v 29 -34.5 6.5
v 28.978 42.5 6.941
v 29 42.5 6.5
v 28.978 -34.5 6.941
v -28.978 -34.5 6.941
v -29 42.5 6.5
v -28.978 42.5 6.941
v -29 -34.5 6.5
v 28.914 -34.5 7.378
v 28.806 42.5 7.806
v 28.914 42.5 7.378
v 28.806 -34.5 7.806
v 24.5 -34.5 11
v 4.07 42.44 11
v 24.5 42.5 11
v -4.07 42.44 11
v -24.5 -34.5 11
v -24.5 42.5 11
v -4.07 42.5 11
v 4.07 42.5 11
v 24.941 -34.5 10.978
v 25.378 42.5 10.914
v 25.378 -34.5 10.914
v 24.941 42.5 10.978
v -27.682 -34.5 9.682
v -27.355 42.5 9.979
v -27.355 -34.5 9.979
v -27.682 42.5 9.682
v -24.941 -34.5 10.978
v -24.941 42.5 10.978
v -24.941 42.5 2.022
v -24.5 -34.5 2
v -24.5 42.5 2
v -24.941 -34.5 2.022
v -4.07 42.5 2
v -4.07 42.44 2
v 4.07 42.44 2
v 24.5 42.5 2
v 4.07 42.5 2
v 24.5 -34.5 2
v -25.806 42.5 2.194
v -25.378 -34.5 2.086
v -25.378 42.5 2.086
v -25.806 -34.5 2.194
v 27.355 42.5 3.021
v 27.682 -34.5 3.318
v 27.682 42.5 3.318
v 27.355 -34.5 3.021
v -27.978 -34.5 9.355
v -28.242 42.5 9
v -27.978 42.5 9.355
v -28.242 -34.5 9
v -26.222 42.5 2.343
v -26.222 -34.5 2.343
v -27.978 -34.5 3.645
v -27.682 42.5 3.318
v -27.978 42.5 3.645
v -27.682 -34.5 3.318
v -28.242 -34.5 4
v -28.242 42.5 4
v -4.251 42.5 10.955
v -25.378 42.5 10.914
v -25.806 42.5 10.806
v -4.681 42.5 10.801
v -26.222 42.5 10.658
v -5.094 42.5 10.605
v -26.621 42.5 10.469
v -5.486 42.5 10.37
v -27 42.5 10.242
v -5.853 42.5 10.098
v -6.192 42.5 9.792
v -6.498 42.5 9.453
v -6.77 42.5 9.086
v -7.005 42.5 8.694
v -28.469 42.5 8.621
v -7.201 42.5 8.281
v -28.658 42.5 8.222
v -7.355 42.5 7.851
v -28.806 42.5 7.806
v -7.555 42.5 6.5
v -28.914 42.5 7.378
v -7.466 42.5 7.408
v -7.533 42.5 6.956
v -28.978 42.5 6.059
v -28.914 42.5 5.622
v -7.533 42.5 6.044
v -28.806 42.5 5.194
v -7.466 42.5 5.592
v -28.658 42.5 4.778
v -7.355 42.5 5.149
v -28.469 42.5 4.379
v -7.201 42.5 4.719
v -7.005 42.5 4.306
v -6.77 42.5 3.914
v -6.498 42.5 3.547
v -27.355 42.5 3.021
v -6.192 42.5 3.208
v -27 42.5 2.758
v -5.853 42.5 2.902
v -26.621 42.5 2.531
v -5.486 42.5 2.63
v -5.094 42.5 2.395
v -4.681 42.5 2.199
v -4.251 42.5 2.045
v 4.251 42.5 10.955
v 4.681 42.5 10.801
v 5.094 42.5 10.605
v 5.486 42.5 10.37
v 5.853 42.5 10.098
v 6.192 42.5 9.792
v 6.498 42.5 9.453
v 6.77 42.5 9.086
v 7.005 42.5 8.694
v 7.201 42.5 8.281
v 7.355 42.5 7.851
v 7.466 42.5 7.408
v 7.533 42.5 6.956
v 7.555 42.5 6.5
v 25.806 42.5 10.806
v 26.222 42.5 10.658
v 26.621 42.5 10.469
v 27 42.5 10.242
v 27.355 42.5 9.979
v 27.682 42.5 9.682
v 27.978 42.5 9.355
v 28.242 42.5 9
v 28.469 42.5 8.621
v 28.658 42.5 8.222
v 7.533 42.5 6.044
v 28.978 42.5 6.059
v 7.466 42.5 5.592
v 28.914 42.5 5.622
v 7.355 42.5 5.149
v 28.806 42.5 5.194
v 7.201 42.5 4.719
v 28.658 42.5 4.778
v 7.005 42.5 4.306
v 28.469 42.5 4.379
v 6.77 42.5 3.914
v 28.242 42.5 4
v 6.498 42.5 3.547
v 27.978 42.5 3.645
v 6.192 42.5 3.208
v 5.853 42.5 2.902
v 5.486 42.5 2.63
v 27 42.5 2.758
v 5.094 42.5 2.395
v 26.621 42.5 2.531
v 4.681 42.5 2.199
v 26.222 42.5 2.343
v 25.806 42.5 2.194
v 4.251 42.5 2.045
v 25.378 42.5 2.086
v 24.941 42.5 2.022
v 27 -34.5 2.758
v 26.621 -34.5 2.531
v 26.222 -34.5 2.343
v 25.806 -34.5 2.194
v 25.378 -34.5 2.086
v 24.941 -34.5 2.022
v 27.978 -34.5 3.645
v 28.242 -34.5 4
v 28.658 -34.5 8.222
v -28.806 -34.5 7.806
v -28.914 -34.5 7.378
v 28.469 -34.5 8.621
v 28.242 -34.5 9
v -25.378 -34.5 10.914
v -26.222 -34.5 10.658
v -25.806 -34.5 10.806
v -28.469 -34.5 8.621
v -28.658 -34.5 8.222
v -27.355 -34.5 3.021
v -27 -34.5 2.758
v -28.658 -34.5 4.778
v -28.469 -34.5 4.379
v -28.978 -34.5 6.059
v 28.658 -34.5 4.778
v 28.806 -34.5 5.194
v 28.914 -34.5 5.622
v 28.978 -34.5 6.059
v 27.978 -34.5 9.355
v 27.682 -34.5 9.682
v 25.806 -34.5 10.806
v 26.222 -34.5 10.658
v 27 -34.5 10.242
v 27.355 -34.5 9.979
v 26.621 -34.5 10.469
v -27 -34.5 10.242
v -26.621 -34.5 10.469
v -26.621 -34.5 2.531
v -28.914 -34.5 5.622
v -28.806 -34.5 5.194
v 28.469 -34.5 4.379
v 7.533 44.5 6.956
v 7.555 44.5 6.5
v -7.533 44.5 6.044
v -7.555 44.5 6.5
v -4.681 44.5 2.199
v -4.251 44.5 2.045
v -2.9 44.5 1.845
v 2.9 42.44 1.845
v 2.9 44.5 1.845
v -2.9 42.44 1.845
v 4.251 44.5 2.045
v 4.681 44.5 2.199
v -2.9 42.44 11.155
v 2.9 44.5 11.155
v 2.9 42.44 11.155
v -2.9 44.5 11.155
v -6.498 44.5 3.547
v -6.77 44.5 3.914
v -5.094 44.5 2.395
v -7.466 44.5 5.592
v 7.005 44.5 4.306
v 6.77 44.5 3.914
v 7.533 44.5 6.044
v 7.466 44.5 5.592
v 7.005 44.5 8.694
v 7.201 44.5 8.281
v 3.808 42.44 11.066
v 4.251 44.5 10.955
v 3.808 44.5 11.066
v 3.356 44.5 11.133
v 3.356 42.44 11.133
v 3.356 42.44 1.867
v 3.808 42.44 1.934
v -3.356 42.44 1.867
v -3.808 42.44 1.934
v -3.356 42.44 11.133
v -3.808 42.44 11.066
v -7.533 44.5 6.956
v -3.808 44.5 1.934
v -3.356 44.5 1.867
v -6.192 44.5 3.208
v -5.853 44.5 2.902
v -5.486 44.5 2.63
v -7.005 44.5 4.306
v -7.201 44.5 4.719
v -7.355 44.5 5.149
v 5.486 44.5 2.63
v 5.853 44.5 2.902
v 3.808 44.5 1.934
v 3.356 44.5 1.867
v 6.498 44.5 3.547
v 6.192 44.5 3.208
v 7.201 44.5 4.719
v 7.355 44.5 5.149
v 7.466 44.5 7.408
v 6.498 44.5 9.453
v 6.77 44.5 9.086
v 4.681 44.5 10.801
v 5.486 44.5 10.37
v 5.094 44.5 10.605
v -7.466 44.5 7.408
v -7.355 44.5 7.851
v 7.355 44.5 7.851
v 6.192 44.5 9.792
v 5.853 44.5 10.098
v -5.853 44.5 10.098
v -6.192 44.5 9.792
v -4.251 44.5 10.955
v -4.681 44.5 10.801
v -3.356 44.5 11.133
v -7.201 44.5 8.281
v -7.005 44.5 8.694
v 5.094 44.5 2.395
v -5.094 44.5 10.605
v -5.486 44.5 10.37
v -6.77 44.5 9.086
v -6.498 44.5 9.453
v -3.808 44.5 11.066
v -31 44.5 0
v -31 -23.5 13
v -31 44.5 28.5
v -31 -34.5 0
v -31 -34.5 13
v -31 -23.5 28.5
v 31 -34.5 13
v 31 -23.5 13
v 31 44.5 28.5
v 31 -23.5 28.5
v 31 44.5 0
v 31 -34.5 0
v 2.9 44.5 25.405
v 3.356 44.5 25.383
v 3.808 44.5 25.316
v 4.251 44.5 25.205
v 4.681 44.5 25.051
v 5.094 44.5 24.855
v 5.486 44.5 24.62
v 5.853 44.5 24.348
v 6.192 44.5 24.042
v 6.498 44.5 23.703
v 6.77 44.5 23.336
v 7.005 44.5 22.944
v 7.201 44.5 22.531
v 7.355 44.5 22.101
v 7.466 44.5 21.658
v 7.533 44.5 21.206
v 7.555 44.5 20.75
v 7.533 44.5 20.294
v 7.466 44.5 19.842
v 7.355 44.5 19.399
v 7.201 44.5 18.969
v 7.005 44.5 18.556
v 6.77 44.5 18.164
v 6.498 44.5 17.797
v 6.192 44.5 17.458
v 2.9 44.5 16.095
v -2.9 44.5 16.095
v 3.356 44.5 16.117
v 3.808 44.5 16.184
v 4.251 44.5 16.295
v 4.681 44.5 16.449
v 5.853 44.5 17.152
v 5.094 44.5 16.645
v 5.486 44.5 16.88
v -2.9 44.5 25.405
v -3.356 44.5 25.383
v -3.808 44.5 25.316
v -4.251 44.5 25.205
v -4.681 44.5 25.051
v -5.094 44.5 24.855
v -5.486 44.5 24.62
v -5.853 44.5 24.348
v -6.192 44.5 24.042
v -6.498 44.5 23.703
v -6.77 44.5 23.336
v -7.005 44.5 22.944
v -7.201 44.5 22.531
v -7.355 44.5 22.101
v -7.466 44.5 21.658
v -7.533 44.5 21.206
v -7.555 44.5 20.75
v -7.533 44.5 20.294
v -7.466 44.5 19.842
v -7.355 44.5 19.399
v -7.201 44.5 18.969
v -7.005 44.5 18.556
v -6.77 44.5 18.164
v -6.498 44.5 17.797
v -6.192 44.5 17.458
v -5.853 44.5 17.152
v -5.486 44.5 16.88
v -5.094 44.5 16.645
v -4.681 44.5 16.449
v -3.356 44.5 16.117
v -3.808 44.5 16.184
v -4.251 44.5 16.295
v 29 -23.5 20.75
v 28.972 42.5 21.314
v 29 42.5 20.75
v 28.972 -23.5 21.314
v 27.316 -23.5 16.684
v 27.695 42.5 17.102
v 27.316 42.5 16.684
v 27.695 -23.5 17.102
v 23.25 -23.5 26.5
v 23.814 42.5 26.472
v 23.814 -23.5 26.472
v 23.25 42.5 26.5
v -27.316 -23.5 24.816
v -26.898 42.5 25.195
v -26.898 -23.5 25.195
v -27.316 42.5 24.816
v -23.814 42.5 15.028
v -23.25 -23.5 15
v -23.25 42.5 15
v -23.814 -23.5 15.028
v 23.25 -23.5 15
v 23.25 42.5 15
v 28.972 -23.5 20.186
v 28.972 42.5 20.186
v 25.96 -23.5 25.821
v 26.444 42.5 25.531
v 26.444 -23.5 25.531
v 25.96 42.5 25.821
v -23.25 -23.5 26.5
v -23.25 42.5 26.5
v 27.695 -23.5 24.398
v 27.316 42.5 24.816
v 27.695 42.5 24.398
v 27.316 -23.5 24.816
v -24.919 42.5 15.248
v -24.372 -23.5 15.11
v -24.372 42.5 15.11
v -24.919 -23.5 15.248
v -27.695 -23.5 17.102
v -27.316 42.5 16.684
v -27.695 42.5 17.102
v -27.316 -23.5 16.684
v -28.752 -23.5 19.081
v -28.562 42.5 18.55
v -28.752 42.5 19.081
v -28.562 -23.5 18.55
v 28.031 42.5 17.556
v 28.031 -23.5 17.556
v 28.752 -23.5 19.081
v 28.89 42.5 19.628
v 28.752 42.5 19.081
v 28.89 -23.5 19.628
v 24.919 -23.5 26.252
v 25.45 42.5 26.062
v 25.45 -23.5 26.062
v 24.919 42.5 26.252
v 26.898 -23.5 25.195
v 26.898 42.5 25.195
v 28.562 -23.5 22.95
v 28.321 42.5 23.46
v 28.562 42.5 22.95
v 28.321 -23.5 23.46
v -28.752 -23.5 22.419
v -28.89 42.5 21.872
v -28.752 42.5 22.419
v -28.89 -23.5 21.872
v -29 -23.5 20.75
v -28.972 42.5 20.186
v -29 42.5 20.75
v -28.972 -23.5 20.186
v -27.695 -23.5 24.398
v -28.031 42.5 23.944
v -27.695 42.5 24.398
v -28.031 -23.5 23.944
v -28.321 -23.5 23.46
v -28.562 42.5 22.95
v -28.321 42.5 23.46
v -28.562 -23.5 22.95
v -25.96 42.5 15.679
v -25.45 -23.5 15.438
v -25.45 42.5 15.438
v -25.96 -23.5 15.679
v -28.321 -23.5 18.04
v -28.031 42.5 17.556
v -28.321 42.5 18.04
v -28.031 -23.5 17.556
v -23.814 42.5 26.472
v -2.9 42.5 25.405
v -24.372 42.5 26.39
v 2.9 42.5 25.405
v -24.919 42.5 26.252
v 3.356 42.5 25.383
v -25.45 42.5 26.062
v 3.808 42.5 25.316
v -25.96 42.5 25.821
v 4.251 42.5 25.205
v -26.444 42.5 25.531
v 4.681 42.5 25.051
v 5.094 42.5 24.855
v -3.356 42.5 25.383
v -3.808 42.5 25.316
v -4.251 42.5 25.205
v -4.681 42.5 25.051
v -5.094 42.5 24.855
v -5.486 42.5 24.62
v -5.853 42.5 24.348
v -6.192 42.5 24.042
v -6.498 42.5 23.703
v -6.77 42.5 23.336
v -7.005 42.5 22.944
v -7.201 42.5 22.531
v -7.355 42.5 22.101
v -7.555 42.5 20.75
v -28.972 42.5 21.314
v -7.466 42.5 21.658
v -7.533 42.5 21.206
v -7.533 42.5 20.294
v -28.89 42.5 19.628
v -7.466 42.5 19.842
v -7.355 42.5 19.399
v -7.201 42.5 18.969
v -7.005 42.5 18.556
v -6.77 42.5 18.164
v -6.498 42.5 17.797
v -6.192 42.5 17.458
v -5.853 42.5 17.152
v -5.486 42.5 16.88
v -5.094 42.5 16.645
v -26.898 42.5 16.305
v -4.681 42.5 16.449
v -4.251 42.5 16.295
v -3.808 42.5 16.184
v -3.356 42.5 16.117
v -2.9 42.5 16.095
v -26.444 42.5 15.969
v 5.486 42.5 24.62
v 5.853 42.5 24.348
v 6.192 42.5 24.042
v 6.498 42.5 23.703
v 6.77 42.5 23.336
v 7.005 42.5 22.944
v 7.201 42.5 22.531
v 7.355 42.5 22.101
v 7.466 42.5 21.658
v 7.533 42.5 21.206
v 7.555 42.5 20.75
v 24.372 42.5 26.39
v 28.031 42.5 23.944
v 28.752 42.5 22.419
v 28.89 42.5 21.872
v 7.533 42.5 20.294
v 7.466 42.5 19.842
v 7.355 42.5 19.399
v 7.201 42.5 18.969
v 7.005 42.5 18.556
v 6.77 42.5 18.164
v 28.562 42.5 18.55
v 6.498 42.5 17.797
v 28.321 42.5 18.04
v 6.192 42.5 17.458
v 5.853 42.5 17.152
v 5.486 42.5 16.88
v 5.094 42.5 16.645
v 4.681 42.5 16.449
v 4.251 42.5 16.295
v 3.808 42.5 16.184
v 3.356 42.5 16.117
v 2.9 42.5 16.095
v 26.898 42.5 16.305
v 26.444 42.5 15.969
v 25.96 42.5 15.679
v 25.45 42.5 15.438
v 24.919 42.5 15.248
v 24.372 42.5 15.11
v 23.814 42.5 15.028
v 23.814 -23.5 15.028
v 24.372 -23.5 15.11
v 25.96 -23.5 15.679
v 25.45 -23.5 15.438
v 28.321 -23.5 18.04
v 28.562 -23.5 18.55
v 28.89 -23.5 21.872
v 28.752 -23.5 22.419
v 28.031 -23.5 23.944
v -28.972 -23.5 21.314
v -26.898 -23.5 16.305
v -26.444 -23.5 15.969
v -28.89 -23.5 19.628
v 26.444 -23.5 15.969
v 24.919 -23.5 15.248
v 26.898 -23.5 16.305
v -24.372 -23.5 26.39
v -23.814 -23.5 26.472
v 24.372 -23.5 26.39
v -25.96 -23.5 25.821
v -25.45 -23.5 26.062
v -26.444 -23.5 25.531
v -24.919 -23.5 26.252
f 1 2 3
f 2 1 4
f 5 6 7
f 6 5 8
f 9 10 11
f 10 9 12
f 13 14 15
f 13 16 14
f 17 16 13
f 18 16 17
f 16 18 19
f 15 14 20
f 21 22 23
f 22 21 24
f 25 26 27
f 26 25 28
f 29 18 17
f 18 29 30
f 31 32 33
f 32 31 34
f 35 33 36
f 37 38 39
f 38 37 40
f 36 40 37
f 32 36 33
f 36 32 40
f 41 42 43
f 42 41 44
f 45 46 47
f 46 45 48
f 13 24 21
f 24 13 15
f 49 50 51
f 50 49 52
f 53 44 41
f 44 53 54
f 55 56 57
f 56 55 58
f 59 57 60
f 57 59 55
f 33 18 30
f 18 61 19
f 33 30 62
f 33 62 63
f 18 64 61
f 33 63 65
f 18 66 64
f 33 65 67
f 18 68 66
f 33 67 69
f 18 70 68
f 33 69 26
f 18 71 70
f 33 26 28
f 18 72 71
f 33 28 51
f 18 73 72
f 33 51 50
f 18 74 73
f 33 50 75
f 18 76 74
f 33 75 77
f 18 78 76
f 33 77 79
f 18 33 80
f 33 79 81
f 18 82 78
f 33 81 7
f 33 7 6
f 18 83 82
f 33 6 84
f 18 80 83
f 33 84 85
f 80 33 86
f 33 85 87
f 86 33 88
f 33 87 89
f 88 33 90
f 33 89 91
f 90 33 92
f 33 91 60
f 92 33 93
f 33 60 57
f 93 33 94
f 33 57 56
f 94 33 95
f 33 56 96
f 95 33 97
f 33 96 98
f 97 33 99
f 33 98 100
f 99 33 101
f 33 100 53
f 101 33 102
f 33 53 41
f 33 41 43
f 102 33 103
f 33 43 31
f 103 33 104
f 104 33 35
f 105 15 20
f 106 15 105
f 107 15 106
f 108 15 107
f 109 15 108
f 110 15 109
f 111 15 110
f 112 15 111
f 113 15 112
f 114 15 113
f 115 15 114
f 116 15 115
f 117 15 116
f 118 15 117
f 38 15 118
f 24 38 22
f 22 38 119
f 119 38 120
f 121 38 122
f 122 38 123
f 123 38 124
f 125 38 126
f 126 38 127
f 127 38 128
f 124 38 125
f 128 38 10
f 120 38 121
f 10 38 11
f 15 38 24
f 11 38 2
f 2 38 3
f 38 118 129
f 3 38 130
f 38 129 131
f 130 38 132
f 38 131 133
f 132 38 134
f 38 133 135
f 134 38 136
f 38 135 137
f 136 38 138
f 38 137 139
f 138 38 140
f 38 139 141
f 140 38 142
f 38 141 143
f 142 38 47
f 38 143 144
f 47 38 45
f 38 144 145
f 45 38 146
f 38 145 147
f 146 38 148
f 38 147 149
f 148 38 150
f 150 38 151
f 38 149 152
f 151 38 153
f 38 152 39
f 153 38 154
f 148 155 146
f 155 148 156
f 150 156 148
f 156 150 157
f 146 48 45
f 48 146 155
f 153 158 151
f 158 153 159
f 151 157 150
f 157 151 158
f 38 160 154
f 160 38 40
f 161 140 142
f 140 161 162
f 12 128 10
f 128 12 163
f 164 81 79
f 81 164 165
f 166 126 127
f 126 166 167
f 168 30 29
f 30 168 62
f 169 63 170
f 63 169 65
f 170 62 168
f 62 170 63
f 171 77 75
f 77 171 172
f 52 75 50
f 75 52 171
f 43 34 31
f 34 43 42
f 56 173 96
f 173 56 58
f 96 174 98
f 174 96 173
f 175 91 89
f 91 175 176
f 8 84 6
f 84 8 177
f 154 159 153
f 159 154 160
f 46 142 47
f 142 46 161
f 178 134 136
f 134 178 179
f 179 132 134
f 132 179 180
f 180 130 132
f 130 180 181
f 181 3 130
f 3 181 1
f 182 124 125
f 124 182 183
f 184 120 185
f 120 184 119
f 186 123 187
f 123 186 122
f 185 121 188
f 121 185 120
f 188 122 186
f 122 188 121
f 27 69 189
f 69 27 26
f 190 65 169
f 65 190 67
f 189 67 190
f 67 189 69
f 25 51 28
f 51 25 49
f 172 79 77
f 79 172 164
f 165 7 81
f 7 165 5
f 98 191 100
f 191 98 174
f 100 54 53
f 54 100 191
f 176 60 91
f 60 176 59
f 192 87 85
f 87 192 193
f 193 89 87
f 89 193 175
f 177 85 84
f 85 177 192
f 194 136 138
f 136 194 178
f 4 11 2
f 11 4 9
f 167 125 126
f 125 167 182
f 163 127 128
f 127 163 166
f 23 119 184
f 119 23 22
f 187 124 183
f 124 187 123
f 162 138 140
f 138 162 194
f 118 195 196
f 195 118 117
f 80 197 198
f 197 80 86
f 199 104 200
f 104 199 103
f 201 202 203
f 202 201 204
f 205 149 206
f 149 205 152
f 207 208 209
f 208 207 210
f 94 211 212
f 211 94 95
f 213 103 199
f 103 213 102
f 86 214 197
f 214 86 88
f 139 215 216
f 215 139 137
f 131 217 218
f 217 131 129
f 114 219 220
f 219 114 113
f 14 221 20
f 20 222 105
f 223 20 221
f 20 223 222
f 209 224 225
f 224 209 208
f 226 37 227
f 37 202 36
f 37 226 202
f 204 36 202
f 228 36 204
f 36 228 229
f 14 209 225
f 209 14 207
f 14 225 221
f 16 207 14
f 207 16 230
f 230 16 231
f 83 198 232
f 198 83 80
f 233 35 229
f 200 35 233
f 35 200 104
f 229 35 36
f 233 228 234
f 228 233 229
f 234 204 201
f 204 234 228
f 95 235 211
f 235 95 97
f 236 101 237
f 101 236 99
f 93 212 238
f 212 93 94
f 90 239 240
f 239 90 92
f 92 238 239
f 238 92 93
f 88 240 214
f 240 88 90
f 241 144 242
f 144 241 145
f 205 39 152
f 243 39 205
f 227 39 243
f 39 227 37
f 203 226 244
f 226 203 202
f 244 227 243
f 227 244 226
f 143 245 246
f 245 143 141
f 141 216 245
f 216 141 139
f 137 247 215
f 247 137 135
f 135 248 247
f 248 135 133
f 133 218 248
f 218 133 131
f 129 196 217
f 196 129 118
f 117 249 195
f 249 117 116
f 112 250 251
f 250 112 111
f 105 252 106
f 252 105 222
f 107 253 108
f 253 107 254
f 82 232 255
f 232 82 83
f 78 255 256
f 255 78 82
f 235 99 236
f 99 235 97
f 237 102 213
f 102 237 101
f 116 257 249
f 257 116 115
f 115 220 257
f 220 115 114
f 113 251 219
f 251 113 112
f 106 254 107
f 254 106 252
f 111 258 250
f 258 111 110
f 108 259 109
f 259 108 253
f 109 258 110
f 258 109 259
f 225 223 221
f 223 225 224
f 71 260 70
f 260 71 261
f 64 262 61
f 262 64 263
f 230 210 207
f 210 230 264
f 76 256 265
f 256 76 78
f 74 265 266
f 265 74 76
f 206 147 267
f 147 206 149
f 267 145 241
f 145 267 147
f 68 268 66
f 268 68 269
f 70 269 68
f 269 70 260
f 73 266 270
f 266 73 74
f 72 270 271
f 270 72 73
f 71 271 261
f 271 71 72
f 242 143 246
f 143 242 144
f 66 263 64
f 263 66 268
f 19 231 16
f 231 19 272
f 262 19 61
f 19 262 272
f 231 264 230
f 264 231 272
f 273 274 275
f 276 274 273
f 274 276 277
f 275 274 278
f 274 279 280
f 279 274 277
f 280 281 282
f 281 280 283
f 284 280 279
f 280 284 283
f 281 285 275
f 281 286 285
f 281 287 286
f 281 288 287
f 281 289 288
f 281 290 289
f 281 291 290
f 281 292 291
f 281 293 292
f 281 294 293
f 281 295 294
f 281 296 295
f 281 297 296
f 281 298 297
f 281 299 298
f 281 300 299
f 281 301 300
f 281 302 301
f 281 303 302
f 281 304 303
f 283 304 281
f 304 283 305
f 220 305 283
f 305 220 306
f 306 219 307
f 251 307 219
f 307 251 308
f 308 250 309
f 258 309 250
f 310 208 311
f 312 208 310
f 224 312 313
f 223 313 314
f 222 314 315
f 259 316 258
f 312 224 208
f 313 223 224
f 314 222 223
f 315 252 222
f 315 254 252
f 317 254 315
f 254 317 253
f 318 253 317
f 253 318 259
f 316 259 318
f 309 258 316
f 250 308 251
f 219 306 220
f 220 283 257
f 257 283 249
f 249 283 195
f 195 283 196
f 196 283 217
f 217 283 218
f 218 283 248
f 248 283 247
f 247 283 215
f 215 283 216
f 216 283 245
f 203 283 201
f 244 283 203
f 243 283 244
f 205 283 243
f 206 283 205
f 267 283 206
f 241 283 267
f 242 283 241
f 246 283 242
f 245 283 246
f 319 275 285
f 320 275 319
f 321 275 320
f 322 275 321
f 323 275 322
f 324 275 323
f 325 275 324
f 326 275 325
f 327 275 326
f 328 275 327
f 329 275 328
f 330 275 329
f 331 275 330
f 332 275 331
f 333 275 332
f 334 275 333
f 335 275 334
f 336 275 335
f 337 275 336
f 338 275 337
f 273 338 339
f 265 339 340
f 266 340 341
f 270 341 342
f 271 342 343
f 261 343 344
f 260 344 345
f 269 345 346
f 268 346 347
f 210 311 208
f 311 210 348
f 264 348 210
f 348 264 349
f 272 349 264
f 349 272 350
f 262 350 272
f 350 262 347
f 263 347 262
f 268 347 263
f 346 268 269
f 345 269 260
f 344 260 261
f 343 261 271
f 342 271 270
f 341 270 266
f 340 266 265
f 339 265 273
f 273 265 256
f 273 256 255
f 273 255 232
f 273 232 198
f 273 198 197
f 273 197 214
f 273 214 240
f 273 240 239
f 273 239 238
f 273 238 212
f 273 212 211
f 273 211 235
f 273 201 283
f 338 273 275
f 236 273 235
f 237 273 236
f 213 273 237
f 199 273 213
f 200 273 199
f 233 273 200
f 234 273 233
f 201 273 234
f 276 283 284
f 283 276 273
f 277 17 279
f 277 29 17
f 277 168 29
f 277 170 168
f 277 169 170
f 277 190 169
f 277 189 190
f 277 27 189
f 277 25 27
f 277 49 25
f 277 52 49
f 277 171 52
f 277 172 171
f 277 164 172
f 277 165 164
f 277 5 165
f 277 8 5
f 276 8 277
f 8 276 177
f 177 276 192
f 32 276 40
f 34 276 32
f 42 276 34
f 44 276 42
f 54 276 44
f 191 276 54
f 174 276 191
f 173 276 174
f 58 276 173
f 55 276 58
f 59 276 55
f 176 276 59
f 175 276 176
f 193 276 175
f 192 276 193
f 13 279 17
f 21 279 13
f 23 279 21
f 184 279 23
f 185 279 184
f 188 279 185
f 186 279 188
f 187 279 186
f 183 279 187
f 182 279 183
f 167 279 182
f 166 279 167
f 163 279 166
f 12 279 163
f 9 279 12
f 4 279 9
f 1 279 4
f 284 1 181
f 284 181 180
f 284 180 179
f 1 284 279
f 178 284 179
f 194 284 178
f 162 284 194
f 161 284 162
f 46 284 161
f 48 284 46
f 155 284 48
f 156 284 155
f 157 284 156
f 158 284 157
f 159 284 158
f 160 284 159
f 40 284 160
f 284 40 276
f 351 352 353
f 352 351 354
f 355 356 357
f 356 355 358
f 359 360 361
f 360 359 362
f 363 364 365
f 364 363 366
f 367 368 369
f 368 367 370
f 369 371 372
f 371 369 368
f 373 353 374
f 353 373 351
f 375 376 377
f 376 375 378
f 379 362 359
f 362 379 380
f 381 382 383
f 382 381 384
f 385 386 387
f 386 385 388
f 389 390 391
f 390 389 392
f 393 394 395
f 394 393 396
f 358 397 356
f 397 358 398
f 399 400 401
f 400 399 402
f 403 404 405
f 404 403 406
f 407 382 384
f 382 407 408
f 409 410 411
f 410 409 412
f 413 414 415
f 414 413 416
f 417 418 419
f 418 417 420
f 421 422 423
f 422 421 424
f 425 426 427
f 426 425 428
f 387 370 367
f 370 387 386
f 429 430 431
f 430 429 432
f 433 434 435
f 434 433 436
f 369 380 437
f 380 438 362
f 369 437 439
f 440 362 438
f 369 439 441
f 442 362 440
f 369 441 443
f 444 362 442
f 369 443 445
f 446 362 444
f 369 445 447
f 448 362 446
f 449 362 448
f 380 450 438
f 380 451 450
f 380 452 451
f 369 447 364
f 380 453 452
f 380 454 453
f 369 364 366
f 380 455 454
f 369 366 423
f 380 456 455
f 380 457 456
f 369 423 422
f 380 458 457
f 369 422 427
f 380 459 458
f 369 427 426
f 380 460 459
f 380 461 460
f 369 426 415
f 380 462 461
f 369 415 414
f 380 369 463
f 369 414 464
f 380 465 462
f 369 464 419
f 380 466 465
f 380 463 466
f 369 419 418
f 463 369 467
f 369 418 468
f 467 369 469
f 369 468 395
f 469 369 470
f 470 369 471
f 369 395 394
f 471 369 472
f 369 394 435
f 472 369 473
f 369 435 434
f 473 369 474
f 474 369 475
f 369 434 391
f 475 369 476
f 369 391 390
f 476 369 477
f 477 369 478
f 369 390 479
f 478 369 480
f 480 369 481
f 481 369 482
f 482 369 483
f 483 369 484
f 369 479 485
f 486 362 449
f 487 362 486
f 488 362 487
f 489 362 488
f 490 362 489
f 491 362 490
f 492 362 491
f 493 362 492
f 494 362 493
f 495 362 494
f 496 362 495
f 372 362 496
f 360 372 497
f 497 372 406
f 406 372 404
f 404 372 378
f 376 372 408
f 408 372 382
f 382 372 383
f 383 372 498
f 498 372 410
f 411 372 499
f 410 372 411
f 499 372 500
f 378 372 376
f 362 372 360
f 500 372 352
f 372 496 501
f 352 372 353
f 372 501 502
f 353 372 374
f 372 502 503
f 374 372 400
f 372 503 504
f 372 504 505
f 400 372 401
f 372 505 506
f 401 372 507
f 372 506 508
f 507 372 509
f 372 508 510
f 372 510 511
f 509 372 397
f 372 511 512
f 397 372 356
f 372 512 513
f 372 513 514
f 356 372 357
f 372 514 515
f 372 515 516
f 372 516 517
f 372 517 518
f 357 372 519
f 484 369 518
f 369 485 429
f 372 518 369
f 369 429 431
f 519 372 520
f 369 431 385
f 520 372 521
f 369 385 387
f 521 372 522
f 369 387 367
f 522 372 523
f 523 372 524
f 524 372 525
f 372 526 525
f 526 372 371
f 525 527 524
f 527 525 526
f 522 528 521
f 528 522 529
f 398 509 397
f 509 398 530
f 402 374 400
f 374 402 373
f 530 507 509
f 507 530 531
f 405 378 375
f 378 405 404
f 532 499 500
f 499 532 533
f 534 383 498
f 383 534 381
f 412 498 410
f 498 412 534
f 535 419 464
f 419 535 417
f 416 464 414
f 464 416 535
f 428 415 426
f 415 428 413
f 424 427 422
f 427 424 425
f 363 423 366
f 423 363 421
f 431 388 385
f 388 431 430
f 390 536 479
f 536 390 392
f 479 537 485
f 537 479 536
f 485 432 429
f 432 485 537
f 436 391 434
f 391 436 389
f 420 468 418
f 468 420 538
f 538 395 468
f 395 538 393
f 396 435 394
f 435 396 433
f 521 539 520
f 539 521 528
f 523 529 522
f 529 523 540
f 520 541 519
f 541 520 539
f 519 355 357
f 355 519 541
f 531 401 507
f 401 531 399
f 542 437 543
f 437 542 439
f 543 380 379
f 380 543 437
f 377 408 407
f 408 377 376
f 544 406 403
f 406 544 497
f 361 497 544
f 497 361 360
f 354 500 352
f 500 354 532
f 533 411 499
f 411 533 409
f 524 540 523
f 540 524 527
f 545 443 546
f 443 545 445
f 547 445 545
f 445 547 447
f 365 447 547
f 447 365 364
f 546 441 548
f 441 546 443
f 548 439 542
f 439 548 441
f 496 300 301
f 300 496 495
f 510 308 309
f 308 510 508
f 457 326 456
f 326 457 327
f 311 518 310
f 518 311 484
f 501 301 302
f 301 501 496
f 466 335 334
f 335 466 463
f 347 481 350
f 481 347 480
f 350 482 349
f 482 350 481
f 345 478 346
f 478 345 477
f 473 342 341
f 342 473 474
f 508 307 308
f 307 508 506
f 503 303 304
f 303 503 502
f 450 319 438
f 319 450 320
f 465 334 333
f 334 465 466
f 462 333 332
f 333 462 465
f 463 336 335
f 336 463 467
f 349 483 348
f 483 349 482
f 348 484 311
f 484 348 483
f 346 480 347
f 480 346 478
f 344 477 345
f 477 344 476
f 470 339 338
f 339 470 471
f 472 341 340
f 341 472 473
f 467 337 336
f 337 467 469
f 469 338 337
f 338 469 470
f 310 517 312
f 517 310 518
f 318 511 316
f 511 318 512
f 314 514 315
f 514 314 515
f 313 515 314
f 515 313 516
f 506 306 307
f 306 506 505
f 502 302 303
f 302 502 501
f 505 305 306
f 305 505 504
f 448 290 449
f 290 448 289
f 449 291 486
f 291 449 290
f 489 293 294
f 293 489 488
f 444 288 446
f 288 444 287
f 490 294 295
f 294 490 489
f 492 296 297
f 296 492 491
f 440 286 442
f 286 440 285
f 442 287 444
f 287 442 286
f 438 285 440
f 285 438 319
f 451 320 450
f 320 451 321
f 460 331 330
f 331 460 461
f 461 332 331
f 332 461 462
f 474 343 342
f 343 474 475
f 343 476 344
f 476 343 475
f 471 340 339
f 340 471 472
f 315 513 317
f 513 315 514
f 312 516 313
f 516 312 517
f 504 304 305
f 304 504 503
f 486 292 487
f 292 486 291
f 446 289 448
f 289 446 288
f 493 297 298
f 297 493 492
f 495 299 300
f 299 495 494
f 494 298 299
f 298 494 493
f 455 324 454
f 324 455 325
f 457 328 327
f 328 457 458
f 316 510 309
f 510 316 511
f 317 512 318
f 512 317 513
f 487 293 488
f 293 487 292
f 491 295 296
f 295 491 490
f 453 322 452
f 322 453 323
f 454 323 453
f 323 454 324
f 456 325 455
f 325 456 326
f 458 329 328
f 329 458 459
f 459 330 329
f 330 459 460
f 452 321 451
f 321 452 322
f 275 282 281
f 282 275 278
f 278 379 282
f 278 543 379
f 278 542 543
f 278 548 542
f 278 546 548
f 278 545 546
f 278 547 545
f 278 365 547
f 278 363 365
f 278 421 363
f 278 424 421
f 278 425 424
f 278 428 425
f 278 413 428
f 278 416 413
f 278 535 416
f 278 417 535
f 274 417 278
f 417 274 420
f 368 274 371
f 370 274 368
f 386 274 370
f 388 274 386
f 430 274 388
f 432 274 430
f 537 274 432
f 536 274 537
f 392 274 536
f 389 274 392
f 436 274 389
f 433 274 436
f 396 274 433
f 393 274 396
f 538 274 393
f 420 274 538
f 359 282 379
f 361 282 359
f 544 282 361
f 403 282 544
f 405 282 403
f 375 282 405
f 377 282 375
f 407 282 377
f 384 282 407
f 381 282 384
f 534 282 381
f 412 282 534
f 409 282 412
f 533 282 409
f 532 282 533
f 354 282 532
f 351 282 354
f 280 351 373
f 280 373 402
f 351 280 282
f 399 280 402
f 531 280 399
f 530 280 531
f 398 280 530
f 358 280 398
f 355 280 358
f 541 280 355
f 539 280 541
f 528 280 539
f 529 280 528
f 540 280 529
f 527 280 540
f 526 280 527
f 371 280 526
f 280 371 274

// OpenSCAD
T7s=1;
T5s=1;

// Global variables
/* [Hidden] */
Wall_Thickness = 2;
UsbC_Height = 2.81 + 0.5;
UsbC_Width = 8.61 + 0.5;
UsbC_Length = 2.48*2;
UsbC_CornerRadius = UsbC_Height/2;


module drive(width,length,height,radius) {
    $fn = 64;
    // Model of the Samsung Portable SSD T7/T5
    
    // difference() {
        // Casing
        hull() {
            mirror([0, 0, 0]) translate([width/2-height/2, 0, 0]) rotate([90,0,0]) cylinder(r=height/2, h=length, center=true);
            mirror([1, 0, 0]) translate([width/2-height/2, 0, 0]) rotate([90,0,0]) cylinder(r=height/2, h=length, center=true);
        }
        // USB-C connector
        translate([0, length/2-UsbC_Length, 0]) {
            hull() {
                UsbC_PortHull = 50;
                mirror([0, 0, 0]) translate([UsbC_Width/2-UsbC_CornerRadius, 0, 0]) rotate([90,0,0]) cylinder(r=UsbC_CornerRadius, h=UsbC_Length+UsbC_PortHull, center=true);
                mirror([1, 0, 0]) translate([UsbC_Width/2-UsbC_CornerRadius, 0, 0]) rotate([90,0,0]) cylinder(r=UsbC_CornerRadius, h=UsbC_Length+UsbC_PortHull, center=true);
            }
        }
        // USB-C connector resess
        translate([0, (length/2)+(UsbC_Length*2)-2, 0]) {
            hull() {
                UsbC_PortHull = 11;
                mirror([0, 0, 0]) translate([UsbC_Width/2-UsbC_CornerRadius, 0, 0]) rotate([90,0,0]) cylinder(r=UsbC_CornerRadius+3, h=UsbC_Length+UsbC_PortHull, center=true);
                mirror([1, 0, 0]) translate([UsbC_Width/2-UsbC_CornerRadius, 0, 0]) rotate([90,0,0]) cylinder(r=UsbC_CornerRadius+3, h=UsbC_Length+UsbC_PortHull, center=true);
            }
        }
    // }
}

module dock(type="T7",count=10) {
    // uses the drive() module to generate a dock
    

    Drive_Height = (type=="T7" ? 8 : 10.5) + 1;
    Drive_Width = 57 + 1;
    Drive_Length = (type=="T7" ? 85 : 74);
    Drive_CornerRadius = Drive_Height/2;

    Holder_Height = Wall_Thickness+(Drive_Height+Wall_Thickness)*count;
    Holder_Length = Drive_Length+Wall_Thickness*2;
    Holder_Width = Drive_Width+Wall_Thickness*2;

    difference() {
        // Holder
        translate([0, 5, Holder_Height/2]) {
            cube(size=[Holder_Width, Holder_Length-10, Holder_Height], center=true);
        }
        // Drives
        for (i=[1:1:count]) {
            translate([0, 0, i*(Drive_Height+Wall_Thickness)-Drive_Height/2]) {
                drive(Drive_Width,Drive_Length,Drive_Height,Drive_CornerRadius);
            }
        }
        // #translate([0, Holder_Length/2, Holder_Height/2]) {
        //     cube(size=[UsbC_Width*2, 10, Holder_Height], center=true);
        // }
    }
}

if(T7s>0) {
    dock(type="T7", count=T7s);
}
if(T5s>0) {
    translate([0, 5.5, Wall_Thickness+(8 + 1+Wall_Thickness)*T7s]) {
        dock(type="T5", count=T5s);
    }
}
